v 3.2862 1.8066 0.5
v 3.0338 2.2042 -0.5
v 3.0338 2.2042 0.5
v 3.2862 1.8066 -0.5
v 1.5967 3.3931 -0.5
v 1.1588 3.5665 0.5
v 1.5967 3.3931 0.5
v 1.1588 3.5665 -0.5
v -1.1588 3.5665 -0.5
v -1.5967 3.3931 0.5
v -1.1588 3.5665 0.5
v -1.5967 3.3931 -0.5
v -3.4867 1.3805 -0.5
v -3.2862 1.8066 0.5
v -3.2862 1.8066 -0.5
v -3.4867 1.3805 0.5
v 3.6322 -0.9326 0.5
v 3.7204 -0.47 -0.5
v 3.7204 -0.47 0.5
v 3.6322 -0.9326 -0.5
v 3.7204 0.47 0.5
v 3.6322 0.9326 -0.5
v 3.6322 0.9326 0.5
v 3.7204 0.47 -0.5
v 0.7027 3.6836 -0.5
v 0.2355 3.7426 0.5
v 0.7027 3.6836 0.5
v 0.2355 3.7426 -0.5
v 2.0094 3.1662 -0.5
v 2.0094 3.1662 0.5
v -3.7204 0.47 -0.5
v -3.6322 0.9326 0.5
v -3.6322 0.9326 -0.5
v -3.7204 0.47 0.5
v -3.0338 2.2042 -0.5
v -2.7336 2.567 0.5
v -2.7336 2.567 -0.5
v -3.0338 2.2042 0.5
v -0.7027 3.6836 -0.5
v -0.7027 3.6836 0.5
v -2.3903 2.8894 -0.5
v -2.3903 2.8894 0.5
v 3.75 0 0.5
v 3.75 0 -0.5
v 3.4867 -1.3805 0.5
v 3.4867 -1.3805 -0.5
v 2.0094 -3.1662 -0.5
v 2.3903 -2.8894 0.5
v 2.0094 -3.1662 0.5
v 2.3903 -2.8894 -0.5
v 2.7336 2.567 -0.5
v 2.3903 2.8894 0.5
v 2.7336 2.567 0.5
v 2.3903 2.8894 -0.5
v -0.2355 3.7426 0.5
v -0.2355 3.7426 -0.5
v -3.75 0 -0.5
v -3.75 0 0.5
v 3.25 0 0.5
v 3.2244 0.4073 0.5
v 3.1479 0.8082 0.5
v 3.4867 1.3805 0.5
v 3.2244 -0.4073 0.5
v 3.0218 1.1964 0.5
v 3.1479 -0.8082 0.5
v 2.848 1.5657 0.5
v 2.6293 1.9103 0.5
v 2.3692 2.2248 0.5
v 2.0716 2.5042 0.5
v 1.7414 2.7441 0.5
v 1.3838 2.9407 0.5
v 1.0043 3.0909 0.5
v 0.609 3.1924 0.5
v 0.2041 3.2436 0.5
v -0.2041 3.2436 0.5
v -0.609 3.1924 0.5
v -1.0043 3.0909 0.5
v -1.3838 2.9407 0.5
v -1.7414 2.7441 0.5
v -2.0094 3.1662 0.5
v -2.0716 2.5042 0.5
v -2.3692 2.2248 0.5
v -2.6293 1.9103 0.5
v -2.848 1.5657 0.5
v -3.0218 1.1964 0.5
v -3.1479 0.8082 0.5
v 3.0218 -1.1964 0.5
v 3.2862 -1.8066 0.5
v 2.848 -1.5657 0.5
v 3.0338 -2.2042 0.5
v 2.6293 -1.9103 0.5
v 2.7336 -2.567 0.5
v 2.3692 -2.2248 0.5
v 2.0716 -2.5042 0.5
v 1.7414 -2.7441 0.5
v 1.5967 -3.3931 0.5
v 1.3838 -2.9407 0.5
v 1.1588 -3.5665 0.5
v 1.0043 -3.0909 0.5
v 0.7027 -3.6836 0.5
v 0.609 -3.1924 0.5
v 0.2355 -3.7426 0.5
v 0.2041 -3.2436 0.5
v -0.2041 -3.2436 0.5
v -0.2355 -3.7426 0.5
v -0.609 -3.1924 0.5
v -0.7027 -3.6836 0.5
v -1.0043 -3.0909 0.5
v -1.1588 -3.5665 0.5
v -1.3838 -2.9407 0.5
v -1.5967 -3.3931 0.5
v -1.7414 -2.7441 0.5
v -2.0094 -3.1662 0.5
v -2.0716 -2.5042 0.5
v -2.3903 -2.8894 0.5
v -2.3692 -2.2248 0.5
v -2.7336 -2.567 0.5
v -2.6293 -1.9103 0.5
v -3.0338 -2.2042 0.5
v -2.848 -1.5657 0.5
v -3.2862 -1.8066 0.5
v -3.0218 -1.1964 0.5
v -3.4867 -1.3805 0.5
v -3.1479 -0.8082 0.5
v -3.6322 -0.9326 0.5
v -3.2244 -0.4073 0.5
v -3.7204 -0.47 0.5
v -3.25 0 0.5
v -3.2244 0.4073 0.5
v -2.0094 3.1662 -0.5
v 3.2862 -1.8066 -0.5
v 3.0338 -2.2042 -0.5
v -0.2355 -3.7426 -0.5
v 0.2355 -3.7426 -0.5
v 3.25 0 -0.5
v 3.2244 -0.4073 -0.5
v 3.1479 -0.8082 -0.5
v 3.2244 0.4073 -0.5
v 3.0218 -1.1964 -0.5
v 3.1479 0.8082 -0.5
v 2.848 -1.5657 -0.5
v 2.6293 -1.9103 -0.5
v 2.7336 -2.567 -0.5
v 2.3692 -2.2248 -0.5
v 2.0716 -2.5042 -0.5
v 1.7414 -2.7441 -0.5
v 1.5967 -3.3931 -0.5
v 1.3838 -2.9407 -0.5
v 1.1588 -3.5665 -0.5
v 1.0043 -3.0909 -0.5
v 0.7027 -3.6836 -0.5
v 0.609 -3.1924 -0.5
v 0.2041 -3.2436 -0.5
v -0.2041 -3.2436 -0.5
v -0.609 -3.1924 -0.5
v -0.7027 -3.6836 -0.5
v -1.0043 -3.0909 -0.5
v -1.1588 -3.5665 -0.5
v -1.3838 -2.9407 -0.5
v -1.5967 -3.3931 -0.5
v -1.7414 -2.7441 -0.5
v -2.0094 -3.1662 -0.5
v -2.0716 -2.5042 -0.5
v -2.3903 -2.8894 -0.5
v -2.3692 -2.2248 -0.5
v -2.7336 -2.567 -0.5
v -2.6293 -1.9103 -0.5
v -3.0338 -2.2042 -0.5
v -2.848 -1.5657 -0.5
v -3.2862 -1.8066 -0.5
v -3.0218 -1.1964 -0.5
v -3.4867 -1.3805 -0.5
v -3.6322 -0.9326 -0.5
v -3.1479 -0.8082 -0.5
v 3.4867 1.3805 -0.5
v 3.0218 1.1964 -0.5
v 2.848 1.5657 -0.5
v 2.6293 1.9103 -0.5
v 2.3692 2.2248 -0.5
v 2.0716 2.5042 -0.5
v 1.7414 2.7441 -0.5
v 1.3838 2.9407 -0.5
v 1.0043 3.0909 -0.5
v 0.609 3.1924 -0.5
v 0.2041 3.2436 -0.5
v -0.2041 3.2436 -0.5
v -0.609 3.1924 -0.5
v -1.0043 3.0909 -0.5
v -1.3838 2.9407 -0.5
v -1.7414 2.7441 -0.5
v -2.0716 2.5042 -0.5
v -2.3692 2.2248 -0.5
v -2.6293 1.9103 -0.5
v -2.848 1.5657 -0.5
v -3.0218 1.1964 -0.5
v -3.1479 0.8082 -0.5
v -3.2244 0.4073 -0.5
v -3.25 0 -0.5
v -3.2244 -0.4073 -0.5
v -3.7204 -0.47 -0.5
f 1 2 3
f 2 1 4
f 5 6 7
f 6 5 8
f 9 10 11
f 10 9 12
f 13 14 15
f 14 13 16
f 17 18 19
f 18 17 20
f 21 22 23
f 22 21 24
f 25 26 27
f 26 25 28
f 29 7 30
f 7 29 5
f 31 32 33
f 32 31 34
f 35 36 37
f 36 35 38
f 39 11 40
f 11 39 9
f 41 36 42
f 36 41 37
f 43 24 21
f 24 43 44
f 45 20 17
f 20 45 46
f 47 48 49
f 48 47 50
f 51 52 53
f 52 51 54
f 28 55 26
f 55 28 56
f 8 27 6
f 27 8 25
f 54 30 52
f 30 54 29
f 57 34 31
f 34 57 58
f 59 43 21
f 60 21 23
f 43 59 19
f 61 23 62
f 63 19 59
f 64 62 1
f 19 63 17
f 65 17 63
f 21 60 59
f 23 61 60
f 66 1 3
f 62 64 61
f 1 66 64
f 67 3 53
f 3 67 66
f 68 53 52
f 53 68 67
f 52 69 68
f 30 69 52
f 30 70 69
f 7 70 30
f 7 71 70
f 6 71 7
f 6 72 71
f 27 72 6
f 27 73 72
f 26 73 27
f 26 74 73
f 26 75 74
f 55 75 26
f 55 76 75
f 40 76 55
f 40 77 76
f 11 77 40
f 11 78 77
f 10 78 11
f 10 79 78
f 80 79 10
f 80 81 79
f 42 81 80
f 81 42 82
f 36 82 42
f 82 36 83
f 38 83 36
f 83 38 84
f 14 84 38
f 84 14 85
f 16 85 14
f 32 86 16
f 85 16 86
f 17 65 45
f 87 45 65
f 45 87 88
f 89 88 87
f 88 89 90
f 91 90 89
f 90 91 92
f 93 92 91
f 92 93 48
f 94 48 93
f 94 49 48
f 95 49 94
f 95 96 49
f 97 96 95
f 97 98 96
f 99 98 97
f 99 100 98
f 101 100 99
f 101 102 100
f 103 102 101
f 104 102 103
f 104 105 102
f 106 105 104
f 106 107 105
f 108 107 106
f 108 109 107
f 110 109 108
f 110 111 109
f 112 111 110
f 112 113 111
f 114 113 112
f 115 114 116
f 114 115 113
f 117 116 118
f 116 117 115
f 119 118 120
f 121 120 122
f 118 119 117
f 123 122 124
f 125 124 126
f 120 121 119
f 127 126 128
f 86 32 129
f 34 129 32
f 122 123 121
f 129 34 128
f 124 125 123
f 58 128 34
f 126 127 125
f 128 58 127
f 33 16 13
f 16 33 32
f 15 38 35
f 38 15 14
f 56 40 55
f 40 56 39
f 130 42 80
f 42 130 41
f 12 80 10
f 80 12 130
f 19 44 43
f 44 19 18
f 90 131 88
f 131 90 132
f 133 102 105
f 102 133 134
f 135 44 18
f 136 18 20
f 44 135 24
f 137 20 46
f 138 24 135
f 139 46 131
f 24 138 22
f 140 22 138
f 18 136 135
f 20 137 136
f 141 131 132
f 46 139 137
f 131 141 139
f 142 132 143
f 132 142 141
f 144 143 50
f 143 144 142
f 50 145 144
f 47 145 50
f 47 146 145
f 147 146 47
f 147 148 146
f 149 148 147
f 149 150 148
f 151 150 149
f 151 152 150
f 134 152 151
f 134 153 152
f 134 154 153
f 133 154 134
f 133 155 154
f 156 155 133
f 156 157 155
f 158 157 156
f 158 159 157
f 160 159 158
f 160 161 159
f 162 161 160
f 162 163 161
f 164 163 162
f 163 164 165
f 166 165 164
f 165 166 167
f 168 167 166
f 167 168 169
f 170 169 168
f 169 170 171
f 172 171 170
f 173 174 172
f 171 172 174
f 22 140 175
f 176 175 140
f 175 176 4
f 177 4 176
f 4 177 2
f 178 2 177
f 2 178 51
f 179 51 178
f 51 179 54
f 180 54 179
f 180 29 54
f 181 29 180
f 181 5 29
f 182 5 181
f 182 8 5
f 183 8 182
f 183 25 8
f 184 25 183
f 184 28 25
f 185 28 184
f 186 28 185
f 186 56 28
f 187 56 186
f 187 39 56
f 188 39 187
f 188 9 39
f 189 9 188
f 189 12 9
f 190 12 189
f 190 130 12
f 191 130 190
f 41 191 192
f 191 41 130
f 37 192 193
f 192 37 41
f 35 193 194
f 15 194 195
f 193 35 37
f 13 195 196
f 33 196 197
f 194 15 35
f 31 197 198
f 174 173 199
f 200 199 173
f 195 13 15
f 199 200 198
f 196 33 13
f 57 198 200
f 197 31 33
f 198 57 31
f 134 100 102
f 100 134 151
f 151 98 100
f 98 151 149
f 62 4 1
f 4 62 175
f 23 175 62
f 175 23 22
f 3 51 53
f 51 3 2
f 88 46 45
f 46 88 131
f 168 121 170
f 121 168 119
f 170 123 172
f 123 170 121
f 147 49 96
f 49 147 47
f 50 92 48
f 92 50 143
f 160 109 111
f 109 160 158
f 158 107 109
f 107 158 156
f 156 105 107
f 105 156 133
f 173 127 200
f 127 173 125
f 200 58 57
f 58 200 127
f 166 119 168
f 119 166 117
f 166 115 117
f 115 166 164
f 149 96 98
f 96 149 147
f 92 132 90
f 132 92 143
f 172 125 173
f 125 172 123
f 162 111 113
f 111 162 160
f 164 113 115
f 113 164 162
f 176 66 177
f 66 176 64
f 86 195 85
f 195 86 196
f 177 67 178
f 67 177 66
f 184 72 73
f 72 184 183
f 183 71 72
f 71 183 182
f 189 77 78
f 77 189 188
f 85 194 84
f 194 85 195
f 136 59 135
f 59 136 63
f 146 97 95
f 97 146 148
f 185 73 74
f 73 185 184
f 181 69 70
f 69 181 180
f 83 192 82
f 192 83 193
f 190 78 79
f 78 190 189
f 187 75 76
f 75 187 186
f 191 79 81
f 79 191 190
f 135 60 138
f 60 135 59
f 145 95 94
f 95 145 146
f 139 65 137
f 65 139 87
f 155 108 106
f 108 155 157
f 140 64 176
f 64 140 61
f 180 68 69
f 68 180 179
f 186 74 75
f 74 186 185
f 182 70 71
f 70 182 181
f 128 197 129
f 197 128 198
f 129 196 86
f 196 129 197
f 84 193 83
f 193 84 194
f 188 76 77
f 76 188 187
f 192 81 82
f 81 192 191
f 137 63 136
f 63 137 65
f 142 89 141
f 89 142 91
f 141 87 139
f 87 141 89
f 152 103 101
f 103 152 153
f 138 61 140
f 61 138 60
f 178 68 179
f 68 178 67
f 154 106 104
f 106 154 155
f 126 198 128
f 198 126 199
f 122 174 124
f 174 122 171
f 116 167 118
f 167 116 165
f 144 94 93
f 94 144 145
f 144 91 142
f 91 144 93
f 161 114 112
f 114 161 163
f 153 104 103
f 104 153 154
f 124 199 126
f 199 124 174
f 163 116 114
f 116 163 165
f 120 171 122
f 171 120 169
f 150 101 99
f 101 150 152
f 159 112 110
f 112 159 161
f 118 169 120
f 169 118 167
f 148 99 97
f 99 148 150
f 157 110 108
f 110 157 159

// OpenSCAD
$fn = 50;


difference() {
	union() {
		translate(v = [0, 0, -0.5000000000]) {
			cylinder(h = 1, r = 3.7500000000);
		}
	}
	union() {
		translate(v = [0, 0, -100.0000000000]) {
			cylinder(h = 200, r = 3.2500000000);
		}
	}
}
